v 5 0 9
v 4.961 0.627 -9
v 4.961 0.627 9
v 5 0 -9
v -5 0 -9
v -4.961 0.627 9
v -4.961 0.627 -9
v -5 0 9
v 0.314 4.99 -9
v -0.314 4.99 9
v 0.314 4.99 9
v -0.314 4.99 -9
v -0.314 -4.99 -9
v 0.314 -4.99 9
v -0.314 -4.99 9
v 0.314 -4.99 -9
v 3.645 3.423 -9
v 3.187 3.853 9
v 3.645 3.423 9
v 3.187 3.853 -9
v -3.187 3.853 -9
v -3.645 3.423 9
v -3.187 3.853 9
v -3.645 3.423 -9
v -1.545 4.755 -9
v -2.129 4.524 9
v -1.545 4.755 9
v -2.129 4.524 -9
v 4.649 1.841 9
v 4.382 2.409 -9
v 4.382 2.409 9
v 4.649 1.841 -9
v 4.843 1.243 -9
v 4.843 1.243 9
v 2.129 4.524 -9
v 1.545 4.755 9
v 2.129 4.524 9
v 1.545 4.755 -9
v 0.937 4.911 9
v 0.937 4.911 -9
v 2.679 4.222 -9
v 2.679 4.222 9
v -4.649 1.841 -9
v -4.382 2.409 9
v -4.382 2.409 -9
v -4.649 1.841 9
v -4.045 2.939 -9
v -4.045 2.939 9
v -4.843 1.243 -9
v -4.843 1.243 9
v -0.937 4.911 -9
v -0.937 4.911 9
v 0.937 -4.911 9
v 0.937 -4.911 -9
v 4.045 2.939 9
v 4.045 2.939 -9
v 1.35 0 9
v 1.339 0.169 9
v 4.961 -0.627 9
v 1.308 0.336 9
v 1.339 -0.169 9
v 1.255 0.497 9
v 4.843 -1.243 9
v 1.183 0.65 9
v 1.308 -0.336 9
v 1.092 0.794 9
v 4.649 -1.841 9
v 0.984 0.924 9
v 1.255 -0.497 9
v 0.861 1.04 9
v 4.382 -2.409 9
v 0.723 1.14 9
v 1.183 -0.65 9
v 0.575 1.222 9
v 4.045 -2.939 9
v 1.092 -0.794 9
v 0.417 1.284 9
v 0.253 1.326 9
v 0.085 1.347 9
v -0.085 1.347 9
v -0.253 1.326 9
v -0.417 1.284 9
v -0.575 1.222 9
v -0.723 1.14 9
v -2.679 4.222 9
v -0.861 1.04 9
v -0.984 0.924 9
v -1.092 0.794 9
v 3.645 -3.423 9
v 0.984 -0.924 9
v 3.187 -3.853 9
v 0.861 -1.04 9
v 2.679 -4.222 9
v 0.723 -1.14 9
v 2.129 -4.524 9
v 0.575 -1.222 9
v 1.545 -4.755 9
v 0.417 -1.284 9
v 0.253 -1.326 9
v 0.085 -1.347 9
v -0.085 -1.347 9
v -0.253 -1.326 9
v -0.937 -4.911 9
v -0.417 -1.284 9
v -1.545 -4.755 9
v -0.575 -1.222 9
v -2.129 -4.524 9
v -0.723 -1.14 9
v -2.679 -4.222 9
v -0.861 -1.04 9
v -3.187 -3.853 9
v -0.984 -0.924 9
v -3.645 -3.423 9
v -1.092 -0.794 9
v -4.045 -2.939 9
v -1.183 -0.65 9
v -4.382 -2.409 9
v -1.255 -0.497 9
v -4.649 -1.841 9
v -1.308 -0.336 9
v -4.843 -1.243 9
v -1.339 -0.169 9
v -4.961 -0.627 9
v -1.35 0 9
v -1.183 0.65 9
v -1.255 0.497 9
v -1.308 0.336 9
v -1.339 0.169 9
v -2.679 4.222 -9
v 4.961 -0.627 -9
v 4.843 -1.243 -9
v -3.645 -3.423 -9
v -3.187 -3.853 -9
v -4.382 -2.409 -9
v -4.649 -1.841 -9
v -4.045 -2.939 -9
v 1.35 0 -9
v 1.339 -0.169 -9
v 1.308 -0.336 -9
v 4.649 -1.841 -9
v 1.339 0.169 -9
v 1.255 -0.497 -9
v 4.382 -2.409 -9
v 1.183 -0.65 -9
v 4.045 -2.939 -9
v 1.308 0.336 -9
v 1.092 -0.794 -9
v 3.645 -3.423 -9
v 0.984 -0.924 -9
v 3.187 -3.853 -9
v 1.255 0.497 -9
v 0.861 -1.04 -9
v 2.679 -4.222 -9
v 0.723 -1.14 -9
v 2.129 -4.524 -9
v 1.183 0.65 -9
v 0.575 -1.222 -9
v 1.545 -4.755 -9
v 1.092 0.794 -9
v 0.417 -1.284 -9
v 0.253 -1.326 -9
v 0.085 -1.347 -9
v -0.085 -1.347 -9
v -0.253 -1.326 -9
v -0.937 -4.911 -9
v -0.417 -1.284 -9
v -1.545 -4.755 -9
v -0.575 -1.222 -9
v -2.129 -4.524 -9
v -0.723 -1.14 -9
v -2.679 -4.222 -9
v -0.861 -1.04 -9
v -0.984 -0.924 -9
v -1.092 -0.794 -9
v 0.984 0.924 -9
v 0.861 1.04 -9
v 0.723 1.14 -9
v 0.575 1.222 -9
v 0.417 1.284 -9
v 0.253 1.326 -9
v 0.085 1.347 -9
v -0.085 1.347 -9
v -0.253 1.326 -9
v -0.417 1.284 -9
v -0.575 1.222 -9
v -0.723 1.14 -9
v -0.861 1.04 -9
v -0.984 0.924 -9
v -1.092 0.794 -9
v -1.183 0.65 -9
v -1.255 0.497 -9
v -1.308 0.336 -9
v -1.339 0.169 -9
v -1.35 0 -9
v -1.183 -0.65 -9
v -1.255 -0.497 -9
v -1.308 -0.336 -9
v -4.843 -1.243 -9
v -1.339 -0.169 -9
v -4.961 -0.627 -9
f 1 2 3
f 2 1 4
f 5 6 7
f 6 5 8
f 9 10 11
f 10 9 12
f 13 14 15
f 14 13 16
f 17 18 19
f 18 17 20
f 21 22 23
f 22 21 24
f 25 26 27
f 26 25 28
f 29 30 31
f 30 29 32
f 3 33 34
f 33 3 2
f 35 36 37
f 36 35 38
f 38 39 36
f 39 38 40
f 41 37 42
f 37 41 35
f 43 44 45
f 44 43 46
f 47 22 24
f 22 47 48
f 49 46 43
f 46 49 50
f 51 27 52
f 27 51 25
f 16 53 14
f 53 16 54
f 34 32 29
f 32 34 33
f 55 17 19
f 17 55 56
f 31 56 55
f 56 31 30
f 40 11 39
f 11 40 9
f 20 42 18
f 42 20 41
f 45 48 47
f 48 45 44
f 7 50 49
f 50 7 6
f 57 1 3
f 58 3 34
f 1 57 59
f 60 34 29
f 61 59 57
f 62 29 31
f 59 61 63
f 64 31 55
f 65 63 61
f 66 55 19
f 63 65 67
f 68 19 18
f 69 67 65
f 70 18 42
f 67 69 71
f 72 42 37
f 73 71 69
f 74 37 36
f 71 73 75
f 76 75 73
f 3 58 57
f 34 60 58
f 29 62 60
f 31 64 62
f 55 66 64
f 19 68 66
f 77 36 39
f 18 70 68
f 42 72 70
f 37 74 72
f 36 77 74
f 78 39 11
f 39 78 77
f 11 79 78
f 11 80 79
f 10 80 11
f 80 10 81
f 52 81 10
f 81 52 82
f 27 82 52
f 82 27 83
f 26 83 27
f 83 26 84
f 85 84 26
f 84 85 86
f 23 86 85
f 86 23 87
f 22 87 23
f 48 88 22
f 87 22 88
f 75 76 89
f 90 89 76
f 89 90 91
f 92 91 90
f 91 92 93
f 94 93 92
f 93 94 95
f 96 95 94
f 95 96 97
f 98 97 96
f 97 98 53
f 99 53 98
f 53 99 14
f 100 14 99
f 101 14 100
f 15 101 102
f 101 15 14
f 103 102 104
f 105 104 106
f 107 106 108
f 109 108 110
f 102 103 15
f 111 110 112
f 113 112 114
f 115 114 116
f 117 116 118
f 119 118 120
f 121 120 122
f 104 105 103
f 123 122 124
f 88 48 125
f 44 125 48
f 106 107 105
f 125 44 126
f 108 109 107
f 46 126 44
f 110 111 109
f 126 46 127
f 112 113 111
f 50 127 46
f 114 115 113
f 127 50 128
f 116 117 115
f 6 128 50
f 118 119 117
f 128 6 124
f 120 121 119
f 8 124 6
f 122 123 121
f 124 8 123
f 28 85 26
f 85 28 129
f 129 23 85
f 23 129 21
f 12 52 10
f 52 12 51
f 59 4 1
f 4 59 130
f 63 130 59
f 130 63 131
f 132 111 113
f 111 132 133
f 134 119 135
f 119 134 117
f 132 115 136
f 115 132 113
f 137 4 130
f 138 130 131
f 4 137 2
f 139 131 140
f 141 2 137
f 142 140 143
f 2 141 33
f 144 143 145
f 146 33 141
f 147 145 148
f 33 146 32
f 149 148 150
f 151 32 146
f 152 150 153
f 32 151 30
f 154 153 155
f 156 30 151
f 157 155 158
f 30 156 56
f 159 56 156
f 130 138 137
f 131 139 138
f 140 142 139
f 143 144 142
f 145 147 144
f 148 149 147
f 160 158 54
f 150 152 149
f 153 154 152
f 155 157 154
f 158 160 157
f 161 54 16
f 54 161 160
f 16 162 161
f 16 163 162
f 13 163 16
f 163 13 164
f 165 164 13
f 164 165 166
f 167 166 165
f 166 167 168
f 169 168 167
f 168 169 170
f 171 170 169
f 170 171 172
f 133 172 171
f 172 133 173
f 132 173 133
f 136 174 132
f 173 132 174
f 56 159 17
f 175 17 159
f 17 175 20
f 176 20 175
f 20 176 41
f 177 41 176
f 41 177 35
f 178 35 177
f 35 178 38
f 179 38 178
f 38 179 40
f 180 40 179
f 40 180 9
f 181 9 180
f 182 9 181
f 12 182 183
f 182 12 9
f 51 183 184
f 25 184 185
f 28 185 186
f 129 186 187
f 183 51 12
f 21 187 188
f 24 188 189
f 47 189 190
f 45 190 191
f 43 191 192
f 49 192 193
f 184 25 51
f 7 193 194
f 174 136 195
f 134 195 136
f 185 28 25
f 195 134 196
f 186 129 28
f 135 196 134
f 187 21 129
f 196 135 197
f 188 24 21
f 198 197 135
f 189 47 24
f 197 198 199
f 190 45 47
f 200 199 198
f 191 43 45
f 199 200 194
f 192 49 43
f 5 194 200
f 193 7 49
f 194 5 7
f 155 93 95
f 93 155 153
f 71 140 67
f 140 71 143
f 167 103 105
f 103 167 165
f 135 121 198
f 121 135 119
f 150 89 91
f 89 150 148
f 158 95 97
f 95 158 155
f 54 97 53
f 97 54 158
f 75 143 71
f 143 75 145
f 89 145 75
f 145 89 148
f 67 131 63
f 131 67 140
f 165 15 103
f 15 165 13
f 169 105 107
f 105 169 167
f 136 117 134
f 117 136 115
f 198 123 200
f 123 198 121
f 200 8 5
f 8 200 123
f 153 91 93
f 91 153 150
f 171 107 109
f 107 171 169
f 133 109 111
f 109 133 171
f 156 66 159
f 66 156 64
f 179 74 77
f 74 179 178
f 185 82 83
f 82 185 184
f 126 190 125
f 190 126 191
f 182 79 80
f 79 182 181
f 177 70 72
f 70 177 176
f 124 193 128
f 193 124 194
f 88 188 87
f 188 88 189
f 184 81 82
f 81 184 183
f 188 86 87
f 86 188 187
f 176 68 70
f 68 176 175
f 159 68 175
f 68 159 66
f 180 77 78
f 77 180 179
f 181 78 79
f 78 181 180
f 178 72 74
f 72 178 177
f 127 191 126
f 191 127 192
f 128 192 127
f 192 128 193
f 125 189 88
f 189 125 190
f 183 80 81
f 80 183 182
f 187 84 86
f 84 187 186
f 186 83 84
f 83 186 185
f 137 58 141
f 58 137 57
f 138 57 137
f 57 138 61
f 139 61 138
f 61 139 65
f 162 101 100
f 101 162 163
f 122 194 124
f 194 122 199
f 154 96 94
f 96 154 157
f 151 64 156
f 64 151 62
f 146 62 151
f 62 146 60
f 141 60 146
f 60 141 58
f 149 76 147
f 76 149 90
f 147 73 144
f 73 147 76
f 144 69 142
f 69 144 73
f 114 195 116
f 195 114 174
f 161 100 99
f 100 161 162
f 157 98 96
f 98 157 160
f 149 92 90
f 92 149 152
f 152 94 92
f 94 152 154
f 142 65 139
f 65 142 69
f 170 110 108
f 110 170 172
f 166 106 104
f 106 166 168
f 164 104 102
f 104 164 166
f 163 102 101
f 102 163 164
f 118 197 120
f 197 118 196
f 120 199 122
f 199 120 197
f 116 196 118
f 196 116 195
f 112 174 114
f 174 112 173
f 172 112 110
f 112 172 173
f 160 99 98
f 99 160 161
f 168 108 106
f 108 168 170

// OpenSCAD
$fn = 50;


difference() {
	union() {
		translate(v = [0, 0, -9.0000000000]) {
			cylinder(h = 18, r = 5.0000000000);
		}
	}
	union() {
		translate(v = [0, 0, -100.0000000000]) {
			cylinder(h = 200, r = 1.3500000000);
		}
	}
}
